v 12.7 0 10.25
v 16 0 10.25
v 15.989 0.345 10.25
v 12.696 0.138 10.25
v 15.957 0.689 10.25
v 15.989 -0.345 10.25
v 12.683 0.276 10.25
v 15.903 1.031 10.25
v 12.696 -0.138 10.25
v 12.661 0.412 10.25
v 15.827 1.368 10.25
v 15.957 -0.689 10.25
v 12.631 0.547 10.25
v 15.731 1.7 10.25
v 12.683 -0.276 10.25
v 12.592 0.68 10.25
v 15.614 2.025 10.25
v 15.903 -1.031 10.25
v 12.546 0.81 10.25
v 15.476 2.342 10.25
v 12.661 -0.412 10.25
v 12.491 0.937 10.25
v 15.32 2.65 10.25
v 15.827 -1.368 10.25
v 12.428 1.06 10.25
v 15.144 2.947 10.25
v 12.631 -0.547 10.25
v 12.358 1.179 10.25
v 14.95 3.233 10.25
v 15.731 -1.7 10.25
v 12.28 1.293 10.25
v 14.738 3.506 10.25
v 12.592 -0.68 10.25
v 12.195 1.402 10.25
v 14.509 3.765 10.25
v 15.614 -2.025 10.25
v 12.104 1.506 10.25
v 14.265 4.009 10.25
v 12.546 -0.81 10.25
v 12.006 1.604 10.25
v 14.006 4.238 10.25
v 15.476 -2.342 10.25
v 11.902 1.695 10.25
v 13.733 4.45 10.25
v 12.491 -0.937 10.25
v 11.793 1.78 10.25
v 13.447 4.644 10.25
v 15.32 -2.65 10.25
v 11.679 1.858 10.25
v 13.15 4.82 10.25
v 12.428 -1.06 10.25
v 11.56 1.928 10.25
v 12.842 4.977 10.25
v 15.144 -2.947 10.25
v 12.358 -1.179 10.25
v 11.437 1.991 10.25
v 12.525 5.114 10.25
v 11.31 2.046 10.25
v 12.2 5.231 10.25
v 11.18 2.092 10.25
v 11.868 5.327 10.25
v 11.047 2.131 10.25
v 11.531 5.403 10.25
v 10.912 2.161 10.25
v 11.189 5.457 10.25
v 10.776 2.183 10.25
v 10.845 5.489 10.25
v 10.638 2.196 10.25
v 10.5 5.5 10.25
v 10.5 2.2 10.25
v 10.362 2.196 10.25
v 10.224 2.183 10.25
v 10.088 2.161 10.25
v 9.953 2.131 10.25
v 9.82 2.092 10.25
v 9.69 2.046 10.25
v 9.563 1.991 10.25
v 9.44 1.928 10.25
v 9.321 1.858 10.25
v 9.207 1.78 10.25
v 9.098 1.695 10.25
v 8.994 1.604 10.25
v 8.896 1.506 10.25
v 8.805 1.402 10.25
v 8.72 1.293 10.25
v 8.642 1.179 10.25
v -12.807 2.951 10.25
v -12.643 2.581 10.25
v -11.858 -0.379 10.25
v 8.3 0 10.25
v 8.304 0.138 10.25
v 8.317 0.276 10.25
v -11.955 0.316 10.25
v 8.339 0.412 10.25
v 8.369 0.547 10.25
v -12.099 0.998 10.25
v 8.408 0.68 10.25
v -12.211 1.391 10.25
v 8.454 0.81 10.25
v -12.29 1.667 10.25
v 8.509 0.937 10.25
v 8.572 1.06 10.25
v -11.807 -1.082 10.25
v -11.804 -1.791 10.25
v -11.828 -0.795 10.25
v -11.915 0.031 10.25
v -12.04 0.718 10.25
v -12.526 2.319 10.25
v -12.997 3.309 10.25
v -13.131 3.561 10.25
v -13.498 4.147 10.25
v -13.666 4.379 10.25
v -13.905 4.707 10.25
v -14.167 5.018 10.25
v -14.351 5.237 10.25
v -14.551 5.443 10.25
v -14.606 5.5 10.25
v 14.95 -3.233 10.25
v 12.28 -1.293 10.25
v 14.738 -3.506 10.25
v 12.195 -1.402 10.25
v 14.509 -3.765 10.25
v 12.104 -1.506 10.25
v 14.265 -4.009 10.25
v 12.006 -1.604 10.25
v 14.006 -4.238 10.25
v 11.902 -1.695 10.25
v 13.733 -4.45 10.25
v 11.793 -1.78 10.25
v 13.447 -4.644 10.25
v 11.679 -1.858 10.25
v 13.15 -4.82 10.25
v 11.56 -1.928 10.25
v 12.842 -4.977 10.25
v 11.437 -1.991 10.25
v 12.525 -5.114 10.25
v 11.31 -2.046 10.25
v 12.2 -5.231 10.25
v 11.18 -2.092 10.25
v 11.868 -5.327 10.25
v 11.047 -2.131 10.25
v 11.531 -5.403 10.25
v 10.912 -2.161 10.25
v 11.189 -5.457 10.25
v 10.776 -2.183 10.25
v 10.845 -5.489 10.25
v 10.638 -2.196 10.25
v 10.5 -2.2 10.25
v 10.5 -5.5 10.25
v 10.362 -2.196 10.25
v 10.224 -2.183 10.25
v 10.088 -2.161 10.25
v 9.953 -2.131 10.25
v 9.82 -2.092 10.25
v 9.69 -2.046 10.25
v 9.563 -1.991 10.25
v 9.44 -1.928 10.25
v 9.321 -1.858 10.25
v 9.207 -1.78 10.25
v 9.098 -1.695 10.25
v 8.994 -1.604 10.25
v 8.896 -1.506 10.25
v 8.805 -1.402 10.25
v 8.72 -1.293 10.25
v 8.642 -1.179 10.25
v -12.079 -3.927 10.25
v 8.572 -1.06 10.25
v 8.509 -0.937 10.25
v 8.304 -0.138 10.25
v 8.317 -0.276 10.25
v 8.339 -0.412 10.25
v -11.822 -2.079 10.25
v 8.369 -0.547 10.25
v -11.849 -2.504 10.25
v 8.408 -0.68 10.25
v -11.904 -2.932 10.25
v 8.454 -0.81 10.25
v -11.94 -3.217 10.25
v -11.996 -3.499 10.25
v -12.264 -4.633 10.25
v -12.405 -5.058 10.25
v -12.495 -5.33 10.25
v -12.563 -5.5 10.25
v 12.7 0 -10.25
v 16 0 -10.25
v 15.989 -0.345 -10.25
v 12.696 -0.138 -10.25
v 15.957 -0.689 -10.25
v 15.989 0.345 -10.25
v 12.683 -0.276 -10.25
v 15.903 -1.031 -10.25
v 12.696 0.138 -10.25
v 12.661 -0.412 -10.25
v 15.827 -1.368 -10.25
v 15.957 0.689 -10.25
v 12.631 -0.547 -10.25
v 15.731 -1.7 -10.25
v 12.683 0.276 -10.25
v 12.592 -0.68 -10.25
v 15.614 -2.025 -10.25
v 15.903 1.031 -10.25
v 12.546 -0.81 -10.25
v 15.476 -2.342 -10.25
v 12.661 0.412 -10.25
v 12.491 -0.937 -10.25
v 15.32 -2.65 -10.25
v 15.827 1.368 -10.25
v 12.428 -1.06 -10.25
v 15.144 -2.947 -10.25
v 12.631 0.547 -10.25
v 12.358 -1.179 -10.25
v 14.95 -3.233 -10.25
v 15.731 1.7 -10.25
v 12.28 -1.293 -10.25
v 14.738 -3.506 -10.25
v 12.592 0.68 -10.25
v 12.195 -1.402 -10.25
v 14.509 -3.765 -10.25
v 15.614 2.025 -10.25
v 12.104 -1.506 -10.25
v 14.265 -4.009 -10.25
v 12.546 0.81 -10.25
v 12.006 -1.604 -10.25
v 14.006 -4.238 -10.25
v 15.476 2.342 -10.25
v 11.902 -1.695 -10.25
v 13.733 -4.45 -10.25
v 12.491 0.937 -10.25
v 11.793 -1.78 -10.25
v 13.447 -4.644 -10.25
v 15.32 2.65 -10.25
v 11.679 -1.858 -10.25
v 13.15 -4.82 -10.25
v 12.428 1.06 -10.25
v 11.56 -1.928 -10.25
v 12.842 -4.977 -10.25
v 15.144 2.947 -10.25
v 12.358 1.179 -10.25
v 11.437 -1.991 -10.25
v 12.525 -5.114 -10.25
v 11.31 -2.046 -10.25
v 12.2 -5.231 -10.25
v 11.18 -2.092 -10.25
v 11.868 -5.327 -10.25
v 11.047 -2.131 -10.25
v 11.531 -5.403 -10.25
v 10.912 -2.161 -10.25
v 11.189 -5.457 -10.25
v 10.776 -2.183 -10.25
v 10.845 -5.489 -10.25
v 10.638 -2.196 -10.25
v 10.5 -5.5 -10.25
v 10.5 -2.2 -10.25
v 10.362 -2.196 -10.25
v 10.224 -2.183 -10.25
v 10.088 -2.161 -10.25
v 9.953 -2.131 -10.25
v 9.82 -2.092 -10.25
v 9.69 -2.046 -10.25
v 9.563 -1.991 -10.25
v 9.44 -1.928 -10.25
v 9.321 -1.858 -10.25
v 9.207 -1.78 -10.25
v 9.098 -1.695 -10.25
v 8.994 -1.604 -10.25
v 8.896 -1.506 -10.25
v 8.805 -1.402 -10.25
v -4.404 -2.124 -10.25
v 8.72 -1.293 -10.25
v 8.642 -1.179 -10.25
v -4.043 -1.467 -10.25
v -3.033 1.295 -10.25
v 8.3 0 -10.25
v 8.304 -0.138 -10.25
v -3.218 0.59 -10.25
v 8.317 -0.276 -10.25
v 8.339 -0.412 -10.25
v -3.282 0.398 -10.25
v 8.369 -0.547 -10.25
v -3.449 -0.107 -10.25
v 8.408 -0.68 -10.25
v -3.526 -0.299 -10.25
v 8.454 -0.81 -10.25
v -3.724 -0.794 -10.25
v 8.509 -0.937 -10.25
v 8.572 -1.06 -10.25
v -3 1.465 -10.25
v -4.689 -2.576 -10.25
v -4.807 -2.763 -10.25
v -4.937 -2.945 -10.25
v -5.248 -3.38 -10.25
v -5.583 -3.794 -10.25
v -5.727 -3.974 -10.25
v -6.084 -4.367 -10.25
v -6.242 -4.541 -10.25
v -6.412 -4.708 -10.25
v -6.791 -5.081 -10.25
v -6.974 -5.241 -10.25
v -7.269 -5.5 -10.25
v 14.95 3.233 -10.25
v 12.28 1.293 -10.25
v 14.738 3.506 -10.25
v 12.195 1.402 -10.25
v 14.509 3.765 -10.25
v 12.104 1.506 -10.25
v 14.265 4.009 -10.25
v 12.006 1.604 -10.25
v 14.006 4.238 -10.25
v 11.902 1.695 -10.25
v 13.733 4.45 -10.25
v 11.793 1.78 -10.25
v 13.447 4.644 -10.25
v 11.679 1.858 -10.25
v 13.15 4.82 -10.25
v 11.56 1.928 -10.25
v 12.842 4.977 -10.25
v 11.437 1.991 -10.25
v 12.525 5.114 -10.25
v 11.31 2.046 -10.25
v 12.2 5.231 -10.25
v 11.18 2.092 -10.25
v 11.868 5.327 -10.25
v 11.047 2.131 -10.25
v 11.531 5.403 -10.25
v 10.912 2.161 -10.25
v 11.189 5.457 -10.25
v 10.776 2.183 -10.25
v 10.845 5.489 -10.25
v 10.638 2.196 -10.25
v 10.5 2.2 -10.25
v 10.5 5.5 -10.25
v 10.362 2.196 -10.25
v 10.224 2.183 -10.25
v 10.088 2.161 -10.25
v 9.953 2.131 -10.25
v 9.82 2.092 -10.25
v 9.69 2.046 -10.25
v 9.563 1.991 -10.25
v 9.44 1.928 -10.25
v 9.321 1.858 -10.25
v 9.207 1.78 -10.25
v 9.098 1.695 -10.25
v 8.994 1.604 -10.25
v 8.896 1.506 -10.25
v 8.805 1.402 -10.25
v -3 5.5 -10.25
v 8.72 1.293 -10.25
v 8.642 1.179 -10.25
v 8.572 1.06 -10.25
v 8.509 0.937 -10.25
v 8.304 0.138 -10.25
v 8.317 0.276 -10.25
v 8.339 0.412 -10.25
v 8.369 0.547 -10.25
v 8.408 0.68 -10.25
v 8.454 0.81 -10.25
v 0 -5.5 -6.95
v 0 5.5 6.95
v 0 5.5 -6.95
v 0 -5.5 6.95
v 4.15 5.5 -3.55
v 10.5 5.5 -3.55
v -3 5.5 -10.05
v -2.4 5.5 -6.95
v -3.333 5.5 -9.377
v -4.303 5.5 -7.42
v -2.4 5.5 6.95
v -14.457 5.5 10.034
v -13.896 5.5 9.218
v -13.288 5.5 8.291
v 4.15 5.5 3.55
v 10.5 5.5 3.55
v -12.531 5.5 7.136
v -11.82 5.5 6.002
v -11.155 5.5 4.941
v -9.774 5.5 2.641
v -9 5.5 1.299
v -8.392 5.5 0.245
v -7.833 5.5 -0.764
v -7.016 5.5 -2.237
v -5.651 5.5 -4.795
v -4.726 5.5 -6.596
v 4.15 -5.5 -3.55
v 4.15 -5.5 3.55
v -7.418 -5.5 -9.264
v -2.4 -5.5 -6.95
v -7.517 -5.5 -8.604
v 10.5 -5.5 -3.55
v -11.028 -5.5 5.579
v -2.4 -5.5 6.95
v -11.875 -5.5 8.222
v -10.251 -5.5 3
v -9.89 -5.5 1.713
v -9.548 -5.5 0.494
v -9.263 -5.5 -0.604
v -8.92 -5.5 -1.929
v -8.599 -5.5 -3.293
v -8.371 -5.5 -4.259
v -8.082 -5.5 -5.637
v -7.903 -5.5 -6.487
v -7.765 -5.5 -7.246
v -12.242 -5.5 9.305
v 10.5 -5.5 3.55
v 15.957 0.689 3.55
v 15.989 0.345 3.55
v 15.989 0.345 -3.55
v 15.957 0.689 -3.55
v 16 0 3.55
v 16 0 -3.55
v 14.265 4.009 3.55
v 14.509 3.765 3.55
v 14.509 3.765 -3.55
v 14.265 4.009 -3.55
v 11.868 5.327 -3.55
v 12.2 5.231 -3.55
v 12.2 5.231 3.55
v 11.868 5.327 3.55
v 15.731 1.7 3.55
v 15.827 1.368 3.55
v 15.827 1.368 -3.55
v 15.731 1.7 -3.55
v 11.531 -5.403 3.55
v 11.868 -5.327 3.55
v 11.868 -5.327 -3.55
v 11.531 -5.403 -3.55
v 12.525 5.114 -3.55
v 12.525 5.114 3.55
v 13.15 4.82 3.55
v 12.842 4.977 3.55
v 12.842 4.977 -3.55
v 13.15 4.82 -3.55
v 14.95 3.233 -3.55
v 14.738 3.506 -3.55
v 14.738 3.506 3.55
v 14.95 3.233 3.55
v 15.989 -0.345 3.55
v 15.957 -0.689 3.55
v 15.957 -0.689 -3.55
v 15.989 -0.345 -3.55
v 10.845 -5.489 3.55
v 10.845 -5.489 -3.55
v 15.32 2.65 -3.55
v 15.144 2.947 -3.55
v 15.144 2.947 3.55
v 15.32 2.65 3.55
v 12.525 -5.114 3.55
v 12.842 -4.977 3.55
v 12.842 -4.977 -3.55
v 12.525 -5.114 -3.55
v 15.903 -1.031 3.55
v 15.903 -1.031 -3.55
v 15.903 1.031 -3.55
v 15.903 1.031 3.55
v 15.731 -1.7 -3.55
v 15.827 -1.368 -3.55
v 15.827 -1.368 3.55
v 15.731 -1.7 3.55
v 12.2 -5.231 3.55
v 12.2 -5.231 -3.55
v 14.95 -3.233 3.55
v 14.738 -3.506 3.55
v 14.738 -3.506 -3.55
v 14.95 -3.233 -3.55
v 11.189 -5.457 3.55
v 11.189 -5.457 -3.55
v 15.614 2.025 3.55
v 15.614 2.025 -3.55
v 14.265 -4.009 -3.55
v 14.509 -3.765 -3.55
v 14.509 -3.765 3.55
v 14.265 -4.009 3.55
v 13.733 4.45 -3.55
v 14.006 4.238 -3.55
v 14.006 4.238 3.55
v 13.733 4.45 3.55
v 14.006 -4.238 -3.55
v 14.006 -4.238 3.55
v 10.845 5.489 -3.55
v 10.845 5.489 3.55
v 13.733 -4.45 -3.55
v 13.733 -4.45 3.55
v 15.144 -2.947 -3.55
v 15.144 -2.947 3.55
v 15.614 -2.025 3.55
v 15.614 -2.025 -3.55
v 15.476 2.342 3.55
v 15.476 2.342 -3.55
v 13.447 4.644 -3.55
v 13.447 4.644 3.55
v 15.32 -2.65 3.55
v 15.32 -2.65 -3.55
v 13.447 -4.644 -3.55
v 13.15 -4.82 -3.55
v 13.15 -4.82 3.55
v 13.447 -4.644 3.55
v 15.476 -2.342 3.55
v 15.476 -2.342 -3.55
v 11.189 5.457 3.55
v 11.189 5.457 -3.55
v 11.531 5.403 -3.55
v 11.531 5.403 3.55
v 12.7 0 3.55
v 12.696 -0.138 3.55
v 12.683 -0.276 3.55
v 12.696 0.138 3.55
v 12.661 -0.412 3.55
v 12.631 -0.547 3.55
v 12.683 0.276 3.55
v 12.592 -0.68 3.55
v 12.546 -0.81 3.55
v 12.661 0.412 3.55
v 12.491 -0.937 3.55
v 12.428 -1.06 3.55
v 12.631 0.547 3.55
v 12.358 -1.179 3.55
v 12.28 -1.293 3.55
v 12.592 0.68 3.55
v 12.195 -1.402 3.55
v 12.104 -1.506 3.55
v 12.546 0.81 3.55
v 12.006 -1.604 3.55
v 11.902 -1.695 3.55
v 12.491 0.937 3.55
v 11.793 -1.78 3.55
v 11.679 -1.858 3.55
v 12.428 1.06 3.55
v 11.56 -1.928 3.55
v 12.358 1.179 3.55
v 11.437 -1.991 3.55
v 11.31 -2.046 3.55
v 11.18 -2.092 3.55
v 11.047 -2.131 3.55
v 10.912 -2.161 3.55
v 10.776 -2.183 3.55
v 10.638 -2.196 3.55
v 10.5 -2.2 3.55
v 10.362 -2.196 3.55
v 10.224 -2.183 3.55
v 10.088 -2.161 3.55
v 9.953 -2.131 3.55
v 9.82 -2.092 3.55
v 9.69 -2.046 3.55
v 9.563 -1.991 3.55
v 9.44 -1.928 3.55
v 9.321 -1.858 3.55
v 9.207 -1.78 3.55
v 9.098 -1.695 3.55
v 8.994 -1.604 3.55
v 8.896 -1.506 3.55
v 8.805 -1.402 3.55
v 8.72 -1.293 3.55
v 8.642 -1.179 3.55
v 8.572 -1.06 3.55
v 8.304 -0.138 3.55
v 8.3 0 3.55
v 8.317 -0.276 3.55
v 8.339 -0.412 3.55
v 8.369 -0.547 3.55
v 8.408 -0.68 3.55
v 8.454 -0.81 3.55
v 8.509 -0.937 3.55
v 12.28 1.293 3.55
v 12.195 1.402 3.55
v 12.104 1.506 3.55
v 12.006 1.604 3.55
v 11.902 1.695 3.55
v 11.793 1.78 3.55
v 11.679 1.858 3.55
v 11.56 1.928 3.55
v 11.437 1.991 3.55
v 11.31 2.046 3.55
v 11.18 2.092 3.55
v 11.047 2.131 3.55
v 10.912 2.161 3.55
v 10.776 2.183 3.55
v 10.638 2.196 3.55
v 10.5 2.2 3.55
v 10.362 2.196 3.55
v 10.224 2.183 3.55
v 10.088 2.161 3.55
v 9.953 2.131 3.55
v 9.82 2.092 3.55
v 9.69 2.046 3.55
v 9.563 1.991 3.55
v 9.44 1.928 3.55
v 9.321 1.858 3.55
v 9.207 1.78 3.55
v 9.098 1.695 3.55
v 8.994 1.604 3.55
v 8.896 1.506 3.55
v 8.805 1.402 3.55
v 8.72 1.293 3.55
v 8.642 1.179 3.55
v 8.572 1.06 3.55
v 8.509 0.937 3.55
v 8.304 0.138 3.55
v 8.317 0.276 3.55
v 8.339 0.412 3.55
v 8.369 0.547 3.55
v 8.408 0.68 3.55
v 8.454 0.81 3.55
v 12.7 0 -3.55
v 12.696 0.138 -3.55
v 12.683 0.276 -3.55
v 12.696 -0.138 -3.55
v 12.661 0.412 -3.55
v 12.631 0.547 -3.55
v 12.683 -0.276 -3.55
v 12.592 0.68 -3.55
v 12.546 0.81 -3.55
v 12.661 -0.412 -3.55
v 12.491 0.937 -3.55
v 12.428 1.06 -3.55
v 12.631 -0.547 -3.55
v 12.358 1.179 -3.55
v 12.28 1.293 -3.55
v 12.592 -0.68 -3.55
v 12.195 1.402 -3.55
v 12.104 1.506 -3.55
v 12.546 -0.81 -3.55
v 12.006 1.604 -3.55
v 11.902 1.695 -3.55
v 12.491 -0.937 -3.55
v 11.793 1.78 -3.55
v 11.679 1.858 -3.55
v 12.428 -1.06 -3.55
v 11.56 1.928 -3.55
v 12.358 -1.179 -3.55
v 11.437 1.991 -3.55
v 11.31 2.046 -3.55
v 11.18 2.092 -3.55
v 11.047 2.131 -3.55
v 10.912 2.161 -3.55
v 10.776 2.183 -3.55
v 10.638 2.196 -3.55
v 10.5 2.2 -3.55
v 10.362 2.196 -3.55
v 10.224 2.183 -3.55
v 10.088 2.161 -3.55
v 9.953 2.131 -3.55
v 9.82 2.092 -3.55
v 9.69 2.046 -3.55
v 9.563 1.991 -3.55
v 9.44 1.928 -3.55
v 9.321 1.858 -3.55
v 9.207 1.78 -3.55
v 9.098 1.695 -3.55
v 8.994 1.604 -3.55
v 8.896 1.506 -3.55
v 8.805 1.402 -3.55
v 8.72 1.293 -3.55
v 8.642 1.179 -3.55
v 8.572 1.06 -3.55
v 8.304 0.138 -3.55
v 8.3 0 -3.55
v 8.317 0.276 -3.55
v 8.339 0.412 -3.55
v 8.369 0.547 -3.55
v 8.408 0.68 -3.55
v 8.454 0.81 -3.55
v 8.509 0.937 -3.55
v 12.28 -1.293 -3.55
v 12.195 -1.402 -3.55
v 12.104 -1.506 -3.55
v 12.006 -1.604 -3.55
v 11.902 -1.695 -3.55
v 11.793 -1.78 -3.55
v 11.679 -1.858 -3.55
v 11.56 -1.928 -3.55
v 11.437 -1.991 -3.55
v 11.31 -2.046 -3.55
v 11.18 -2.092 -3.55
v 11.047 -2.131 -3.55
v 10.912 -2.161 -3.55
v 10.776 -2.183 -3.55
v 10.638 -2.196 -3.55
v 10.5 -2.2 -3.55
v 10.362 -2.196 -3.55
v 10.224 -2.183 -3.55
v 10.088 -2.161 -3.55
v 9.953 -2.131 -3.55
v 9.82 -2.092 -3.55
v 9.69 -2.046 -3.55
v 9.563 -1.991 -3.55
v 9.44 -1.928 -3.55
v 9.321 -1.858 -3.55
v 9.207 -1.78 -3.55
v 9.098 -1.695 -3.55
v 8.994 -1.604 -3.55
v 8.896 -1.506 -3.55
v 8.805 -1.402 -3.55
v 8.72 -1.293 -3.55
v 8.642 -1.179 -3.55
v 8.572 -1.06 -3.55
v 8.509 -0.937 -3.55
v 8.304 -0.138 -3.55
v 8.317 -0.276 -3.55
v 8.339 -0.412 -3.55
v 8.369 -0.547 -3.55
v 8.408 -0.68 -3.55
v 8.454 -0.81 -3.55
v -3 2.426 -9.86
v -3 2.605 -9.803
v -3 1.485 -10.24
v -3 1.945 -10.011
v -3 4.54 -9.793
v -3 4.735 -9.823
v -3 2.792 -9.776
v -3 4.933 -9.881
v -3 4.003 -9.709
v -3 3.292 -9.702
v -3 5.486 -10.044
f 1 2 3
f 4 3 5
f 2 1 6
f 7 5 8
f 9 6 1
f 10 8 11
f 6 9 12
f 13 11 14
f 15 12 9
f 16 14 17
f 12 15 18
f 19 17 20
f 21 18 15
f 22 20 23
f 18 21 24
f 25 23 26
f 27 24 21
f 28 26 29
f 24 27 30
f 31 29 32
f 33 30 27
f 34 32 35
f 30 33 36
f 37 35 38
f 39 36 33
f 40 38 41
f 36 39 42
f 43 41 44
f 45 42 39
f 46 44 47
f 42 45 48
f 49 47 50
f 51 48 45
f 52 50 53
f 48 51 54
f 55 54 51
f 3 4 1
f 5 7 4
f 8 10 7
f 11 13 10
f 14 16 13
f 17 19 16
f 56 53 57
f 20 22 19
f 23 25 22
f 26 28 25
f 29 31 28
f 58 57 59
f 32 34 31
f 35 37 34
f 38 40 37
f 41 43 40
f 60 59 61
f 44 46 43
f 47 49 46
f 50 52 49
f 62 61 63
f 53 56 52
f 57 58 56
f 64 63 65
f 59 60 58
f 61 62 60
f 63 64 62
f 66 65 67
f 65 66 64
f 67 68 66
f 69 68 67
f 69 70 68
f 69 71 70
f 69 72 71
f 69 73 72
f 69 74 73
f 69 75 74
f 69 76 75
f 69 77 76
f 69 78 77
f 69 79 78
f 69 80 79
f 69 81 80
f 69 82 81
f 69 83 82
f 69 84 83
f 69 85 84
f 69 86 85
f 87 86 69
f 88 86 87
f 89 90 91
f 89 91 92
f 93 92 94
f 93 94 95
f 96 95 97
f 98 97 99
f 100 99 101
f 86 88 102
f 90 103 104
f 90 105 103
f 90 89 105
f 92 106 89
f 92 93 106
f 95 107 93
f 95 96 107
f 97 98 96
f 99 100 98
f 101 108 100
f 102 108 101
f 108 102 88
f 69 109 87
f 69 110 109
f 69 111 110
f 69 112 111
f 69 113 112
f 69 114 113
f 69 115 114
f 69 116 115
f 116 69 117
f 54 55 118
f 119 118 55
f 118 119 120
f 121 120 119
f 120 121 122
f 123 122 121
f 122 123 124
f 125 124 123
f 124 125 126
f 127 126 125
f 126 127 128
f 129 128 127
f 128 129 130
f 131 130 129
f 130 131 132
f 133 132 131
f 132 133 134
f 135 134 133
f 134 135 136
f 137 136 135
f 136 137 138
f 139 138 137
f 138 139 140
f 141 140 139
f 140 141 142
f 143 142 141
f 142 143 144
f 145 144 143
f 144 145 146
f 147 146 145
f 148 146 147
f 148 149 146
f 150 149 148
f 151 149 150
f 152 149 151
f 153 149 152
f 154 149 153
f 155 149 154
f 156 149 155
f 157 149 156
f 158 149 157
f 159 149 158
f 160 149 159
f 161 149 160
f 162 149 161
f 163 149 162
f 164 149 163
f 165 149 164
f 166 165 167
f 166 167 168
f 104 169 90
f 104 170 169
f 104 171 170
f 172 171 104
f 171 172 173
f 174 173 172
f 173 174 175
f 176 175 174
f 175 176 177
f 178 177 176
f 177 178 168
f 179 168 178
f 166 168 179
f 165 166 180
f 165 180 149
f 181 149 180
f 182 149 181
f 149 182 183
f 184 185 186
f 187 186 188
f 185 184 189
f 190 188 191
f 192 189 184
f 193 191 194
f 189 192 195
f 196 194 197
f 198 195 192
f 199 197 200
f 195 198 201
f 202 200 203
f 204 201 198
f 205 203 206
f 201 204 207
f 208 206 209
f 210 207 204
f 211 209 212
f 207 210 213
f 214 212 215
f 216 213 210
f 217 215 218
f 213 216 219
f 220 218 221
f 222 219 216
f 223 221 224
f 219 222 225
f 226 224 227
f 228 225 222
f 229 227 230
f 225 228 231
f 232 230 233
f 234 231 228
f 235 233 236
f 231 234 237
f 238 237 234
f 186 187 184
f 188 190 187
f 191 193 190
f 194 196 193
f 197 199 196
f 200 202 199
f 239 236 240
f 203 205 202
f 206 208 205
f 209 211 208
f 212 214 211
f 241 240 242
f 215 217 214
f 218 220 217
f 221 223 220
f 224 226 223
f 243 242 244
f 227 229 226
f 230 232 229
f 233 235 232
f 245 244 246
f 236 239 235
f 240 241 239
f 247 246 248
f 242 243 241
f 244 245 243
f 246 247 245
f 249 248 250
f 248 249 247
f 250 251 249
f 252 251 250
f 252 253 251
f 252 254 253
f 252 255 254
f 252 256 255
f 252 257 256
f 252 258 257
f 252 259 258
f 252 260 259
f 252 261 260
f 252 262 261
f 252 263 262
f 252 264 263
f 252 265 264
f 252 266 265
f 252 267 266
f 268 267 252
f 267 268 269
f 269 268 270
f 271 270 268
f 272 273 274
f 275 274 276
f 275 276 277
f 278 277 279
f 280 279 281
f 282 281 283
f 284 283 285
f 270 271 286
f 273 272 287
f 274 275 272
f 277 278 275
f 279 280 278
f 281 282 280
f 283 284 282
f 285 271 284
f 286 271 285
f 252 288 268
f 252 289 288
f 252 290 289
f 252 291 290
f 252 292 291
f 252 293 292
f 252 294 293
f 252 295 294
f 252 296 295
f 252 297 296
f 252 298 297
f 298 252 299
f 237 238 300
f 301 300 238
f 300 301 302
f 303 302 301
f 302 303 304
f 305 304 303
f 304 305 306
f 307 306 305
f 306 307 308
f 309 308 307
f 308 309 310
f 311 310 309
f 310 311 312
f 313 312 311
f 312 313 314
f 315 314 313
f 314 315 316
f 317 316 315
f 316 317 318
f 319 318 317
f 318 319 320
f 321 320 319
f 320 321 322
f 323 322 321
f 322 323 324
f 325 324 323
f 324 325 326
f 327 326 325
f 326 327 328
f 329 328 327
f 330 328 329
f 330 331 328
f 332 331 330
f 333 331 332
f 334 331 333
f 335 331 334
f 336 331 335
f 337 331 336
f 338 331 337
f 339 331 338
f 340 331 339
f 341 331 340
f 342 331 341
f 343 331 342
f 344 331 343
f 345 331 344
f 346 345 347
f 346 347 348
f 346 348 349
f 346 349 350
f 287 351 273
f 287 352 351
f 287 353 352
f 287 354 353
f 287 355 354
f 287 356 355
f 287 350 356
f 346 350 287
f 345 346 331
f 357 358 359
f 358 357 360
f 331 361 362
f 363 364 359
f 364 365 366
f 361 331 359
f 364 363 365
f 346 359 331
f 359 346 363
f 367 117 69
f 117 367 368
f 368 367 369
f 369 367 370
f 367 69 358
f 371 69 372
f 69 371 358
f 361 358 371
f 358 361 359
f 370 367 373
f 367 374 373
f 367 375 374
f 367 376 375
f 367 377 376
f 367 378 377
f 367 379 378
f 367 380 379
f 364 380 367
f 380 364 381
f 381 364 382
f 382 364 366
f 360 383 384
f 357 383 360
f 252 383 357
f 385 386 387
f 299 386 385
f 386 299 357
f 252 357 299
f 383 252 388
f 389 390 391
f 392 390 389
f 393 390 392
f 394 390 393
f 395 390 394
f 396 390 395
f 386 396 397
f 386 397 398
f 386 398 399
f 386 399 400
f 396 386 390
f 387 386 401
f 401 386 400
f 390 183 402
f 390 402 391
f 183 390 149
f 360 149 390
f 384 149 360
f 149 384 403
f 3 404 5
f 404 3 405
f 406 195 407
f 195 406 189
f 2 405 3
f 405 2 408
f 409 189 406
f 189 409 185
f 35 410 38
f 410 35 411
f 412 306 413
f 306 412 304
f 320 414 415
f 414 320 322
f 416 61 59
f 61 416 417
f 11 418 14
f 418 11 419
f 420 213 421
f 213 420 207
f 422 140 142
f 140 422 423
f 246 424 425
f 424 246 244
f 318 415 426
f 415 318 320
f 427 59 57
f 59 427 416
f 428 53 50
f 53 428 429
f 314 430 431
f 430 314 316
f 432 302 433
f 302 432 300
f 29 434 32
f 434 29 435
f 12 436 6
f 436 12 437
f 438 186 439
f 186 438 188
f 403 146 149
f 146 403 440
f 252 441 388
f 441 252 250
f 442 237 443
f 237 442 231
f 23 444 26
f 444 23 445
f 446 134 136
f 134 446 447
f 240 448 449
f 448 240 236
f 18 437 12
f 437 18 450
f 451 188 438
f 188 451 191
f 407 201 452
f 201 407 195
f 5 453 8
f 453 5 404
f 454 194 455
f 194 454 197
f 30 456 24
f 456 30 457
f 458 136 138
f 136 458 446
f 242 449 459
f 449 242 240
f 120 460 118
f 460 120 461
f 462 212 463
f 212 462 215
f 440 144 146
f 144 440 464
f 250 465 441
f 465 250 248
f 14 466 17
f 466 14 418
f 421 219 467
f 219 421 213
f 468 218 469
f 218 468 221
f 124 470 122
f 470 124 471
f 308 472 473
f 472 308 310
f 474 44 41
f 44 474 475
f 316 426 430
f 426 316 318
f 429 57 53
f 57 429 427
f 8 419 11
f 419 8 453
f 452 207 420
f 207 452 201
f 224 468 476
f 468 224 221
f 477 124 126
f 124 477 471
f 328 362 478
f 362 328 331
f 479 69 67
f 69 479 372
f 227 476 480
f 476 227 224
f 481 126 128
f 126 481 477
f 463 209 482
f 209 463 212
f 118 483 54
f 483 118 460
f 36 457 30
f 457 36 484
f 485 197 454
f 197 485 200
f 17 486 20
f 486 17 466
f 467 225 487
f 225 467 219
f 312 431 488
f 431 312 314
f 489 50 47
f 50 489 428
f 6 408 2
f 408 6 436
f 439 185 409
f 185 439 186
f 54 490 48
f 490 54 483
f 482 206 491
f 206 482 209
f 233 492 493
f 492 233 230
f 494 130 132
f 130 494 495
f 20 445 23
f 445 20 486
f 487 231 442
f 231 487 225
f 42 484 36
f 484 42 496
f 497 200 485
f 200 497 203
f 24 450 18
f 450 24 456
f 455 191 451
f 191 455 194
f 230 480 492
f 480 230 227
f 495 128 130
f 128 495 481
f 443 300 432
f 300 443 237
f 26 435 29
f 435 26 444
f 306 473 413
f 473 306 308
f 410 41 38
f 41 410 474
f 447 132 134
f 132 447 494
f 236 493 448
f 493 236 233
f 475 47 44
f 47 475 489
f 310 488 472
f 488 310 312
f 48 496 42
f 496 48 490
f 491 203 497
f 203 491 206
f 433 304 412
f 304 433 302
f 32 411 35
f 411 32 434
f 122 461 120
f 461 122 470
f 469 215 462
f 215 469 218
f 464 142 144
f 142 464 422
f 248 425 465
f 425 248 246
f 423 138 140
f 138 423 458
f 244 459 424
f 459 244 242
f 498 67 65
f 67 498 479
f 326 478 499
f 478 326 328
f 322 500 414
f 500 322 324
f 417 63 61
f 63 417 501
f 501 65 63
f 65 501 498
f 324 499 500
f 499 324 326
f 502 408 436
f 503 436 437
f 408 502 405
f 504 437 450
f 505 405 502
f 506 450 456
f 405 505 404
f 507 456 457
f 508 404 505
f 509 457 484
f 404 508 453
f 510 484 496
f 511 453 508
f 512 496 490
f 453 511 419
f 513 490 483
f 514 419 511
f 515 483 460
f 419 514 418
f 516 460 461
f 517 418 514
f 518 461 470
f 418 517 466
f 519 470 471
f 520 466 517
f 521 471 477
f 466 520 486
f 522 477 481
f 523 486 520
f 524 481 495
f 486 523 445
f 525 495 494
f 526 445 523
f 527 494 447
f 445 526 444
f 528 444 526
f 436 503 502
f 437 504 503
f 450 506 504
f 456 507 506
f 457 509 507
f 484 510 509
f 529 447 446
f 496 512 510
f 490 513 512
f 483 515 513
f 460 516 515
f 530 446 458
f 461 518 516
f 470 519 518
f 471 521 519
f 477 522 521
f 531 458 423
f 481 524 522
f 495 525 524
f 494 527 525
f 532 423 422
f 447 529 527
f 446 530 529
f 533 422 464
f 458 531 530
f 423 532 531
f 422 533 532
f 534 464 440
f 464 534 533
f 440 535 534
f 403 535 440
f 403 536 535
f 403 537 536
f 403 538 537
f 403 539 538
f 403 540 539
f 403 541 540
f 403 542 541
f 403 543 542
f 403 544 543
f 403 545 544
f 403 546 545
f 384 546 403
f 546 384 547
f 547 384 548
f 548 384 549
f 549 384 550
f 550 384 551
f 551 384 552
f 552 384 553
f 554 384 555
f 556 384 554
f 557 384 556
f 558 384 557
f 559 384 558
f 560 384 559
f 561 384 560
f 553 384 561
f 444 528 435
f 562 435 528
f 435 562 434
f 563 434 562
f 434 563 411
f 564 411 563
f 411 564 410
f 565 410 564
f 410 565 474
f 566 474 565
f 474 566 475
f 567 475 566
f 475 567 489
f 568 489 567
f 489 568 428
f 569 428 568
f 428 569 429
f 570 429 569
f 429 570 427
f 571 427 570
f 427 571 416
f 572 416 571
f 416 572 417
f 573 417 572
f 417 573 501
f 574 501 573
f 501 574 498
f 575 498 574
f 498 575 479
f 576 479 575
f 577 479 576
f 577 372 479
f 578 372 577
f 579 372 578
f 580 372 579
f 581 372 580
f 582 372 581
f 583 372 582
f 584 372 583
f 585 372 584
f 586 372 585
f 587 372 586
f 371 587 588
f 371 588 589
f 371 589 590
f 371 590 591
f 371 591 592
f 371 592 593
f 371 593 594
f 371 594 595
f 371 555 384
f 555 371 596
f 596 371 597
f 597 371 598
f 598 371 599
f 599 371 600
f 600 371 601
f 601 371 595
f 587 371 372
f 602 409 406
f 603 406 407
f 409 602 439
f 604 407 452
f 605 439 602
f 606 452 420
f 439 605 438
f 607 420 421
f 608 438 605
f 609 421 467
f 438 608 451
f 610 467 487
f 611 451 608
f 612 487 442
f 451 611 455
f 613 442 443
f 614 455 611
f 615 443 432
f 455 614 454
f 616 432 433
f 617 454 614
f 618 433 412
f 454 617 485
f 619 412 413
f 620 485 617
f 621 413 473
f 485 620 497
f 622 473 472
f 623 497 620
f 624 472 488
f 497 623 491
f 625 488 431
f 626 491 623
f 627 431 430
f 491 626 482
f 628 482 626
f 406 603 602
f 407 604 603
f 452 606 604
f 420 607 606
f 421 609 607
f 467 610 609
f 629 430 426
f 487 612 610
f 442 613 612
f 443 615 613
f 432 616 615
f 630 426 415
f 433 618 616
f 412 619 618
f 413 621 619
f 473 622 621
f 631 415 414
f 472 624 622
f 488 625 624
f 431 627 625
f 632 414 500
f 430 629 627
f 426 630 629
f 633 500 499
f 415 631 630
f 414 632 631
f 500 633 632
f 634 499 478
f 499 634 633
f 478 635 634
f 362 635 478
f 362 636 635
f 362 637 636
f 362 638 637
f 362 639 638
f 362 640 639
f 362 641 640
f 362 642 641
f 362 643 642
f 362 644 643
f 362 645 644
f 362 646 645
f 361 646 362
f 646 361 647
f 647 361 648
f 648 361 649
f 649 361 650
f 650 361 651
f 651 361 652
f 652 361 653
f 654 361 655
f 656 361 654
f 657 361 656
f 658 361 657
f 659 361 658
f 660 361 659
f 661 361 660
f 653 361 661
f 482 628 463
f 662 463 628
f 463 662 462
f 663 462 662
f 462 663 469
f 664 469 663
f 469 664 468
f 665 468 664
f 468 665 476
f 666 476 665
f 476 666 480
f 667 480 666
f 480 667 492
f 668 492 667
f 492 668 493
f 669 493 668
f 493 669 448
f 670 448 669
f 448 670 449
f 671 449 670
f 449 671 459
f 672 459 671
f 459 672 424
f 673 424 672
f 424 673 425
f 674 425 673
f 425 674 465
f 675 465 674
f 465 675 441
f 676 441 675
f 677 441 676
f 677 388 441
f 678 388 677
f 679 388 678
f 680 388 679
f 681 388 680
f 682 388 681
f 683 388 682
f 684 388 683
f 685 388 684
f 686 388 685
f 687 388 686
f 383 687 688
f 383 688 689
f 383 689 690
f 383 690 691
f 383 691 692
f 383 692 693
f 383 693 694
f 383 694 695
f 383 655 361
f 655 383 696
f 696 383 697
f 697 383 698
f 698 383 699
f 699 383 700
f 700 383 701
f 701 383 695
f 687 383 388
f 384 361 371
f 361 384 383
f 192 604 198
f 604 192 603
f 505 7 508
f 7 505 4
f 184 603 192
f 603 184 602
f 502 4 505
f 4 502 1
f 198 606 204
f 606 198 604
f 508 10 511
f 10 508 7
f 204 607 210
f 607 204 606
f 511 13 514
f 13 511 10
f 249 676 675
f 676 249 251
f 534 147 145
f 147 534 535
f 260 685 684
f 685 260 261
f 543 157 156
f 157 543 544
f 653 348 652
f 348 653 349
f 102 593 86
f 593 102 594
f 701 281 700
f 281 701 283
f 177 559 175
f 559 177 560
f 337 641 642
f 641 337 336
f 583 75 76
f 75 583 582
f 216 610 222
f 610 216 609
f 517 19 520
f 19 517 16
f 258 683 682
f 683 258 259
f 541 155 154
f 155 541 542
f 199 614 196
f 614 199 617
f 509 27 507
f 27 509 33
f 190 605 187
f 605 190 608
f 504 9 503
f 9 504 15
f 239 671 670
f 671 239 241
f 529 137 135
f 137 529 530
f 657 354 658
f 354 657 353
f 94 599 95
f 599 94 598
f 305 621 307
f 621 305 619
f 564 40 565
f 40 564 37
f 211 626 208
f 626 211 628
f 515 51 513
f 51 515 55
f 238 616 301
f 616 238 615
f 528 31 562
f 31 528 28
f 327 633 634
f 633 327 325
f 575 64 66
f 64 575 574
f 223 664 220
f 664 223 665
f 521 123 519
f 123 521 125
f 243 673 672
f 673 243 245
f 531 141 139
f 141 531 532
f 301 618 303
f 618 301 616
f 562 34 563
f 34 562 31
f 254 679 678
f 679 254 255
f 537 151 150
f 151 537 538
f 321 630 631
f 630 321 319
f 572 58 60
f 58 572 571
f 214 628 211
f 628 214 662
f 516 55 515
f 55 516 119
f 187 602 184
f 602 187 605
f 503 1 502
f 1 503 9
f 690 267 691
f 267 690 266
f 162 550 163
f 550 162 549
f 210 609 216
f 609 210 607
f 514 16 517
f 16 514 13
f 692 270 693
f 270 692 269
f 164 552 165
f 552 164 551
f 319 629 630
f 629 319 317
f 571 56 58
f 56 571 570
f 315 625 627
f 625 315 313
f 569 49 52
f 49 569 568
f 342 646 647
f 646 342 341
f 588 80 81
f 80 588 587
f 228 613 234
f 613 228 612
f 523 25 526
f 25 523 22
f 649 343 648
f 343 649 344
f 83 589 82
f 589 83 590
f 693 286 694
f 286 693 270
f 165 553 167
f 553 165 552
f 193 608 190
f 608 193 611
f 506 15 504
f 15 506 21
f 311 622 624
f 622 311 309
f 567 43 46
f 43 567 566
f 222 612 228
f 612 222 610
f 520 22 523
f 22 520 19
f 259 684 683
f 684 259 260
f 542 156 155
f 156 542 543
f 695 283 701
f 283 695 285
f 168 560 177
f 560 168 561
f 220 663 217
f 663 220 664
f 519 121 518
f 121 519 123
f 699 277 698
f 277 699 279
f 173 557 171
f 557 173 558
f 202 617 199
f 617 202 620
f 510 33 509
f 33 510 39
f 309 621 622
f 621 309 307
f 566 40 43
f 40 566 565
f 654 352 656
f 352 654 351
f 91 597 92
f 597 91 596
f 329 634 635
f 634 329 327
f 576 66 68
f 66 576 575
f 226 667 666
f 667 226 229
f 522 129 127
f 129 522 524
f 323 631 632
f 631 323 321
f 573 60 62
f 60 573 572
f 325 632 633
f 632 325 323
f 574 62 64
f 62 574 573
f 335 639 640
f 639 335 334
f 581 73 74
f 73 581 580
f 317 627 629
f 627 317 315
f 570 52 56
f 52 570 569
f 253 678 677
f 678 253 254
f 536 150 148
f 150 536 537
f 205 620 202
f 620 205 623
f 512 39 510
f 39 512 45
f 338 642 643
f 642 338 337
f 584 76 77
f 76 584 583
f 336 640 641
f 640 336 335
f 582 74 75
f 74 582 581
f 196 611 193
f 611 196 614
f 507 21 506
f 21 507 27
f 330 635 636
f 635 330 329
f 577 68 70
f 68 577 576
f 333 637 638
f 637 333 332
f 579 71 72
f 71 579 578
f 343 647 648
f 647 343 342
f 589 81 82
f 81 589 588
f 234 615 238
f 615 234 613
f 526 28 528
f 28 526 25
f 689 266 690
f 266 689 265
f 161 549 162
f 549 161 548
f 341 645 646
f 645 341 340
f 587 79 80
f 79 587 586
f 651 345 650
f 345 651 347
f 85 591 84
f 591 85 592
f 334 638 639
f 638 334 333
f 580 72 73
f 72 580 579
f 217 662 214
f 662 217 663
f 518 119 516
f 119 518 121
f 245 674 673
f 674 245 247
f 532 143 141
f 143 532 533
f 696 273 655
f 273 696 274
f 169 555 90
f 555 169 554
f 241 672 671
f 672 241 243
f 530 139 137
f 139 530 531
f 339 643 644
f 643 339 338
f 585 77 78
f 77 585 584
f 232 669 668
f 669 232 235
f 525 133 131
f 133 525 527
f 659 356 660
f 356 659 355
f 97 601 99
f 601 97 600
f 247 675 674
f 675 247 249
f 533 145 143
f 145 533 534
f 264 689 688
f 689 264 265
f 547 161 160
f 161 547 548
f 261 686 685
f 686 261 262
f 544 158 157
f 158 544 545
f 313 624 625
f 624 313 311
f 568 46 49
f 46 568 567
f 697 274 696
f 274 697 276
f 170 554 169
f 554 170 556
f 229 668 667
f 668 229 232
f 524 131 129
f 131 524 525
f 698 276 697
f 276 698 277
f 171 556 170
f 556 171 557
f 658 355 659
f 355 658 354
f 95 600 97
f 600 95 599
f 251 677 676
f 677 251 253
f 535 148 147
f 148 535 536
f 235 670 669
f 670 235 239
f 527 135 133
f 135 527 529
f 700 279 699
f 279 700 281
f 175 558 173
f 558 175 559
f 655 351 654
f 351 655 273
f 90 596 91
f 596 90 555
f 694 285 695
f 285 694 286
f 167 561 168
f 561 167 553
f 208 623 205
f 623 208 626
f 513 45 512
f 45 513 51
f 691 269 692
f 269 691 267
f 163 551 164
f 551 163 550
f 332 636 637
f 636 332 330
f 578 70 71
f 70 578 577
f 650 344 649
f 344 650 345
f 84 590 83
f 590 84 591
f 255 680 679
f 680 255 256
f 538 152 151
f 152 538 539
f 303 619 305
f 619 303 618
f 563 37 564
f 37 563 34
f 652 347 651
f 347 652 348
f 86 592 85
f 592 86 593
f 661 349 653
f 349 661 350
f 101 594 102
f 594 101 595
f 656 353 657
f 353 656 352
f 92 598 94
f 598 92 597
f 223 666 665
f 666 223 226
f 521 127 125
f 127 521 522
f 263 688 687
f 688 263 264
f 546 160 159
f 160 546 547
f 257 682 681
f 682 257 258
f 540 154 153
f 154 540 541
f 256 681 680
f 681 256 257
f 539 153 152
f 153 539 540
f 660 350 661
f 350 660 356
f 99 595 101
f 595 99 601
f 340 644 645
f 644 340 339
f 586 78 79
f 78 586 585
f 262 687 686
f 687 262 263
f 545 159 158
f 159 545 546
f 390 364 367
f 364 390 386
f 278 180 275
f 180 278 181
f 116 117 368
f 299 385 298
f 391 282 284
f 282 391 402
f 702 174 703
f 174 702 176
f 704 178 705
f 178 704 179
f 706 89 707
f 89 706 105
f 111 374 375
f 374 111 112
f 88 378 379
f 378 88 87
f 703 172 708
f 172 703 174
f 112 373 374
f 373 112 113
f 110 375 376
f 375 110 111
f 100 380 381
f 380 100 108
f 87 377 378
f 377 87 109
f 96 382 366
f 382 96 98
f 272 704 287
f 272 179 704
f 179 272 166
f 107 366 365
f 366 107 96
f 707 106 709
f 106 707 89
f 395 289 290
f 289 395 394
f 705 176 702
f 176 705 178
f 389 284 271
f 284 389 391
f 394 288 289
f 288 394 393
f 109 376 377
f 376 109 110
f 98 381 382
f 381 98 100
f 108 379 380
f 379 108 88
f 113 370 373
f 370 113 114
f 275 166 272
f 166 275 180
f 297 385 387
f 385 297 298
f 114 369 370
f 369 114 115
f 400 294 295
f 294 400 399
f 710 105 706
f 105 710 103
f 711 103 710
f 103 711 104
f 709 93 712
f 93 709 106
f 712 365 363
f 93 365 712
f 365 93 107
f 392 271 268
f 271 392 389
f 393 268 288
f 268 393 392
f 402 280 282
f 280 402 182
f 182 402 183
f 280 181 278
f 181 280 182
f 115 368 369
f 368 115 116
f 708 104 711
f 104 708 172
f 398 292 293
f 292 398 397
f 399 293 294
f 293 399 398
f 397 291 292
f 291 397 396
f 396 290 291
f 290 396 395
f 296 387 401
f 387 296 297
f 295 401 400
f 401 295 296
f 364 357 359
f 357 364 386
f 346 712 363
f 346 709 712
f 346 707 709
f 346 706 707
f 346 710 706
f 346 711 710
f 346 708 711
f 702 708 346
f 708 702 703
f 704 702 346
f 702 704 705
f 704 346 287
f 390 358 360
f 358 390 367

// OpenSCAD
r_hole = 2.2;
th = 3.3;

arm = 6.90;
small = 0.1;
margen = 1.7;

angle_x = 27;
angle_z = 60;
r_bar = 11;
margen_bar = 2;

th_zip = 3;

module body() {
    difference() {
        union() {
            translate([th + r_hole/2 + margen/2, 0, 0]) cube([margen + 2*th + r_hole, 2*(r_hole + th), 3*arm - 2*small], center=true);
            translate([2*th + r_hole + margen, 0, 0]) cylinder(3*arm - 2*small, r_hole + th, r_hole + th, center=true);
        }
        
        translate([5/2*th + r_hole + margen/2, 0, 0]) cube([3*th + 2*r_hole, 2*(r_hole + th), arm + 2*small], center=true);
        translate([2*th + r_hole + margen, 0, 0]) cylinder(3*arm, r_hole, r_hole, center=true);
    }
}

module zip() {
    translate([0, -(r_hole + th), -3/2*arm + small]) cube([th_zip, 2*(r_hole + th), th]);
}

module bar() {
    difference() {
        translate([th/2 + r_bar/2 + margen_bar/5, 0, 0]) cube([th + margen_bar + r_bar, 2*(r_hole + th), 3*arm - 2*small], center=true);
        translate([th + r_bar + margen_bar, 0, 0]) rotate([0, 0, angle_z]) rotate([angle_x, 0, 0]) cylinder(10*arm, r_bar, r_bar, center=true);
    }
}

$fn=100;
union() {
    body();
    mirror([1, 0, 0]) zip();
    mirror([0, 0, 1]) mirror([1, 0, 0]) zip();
    translate([-th_zip, 0, 0]) mirror([1, 0, 0]) bar();
}
